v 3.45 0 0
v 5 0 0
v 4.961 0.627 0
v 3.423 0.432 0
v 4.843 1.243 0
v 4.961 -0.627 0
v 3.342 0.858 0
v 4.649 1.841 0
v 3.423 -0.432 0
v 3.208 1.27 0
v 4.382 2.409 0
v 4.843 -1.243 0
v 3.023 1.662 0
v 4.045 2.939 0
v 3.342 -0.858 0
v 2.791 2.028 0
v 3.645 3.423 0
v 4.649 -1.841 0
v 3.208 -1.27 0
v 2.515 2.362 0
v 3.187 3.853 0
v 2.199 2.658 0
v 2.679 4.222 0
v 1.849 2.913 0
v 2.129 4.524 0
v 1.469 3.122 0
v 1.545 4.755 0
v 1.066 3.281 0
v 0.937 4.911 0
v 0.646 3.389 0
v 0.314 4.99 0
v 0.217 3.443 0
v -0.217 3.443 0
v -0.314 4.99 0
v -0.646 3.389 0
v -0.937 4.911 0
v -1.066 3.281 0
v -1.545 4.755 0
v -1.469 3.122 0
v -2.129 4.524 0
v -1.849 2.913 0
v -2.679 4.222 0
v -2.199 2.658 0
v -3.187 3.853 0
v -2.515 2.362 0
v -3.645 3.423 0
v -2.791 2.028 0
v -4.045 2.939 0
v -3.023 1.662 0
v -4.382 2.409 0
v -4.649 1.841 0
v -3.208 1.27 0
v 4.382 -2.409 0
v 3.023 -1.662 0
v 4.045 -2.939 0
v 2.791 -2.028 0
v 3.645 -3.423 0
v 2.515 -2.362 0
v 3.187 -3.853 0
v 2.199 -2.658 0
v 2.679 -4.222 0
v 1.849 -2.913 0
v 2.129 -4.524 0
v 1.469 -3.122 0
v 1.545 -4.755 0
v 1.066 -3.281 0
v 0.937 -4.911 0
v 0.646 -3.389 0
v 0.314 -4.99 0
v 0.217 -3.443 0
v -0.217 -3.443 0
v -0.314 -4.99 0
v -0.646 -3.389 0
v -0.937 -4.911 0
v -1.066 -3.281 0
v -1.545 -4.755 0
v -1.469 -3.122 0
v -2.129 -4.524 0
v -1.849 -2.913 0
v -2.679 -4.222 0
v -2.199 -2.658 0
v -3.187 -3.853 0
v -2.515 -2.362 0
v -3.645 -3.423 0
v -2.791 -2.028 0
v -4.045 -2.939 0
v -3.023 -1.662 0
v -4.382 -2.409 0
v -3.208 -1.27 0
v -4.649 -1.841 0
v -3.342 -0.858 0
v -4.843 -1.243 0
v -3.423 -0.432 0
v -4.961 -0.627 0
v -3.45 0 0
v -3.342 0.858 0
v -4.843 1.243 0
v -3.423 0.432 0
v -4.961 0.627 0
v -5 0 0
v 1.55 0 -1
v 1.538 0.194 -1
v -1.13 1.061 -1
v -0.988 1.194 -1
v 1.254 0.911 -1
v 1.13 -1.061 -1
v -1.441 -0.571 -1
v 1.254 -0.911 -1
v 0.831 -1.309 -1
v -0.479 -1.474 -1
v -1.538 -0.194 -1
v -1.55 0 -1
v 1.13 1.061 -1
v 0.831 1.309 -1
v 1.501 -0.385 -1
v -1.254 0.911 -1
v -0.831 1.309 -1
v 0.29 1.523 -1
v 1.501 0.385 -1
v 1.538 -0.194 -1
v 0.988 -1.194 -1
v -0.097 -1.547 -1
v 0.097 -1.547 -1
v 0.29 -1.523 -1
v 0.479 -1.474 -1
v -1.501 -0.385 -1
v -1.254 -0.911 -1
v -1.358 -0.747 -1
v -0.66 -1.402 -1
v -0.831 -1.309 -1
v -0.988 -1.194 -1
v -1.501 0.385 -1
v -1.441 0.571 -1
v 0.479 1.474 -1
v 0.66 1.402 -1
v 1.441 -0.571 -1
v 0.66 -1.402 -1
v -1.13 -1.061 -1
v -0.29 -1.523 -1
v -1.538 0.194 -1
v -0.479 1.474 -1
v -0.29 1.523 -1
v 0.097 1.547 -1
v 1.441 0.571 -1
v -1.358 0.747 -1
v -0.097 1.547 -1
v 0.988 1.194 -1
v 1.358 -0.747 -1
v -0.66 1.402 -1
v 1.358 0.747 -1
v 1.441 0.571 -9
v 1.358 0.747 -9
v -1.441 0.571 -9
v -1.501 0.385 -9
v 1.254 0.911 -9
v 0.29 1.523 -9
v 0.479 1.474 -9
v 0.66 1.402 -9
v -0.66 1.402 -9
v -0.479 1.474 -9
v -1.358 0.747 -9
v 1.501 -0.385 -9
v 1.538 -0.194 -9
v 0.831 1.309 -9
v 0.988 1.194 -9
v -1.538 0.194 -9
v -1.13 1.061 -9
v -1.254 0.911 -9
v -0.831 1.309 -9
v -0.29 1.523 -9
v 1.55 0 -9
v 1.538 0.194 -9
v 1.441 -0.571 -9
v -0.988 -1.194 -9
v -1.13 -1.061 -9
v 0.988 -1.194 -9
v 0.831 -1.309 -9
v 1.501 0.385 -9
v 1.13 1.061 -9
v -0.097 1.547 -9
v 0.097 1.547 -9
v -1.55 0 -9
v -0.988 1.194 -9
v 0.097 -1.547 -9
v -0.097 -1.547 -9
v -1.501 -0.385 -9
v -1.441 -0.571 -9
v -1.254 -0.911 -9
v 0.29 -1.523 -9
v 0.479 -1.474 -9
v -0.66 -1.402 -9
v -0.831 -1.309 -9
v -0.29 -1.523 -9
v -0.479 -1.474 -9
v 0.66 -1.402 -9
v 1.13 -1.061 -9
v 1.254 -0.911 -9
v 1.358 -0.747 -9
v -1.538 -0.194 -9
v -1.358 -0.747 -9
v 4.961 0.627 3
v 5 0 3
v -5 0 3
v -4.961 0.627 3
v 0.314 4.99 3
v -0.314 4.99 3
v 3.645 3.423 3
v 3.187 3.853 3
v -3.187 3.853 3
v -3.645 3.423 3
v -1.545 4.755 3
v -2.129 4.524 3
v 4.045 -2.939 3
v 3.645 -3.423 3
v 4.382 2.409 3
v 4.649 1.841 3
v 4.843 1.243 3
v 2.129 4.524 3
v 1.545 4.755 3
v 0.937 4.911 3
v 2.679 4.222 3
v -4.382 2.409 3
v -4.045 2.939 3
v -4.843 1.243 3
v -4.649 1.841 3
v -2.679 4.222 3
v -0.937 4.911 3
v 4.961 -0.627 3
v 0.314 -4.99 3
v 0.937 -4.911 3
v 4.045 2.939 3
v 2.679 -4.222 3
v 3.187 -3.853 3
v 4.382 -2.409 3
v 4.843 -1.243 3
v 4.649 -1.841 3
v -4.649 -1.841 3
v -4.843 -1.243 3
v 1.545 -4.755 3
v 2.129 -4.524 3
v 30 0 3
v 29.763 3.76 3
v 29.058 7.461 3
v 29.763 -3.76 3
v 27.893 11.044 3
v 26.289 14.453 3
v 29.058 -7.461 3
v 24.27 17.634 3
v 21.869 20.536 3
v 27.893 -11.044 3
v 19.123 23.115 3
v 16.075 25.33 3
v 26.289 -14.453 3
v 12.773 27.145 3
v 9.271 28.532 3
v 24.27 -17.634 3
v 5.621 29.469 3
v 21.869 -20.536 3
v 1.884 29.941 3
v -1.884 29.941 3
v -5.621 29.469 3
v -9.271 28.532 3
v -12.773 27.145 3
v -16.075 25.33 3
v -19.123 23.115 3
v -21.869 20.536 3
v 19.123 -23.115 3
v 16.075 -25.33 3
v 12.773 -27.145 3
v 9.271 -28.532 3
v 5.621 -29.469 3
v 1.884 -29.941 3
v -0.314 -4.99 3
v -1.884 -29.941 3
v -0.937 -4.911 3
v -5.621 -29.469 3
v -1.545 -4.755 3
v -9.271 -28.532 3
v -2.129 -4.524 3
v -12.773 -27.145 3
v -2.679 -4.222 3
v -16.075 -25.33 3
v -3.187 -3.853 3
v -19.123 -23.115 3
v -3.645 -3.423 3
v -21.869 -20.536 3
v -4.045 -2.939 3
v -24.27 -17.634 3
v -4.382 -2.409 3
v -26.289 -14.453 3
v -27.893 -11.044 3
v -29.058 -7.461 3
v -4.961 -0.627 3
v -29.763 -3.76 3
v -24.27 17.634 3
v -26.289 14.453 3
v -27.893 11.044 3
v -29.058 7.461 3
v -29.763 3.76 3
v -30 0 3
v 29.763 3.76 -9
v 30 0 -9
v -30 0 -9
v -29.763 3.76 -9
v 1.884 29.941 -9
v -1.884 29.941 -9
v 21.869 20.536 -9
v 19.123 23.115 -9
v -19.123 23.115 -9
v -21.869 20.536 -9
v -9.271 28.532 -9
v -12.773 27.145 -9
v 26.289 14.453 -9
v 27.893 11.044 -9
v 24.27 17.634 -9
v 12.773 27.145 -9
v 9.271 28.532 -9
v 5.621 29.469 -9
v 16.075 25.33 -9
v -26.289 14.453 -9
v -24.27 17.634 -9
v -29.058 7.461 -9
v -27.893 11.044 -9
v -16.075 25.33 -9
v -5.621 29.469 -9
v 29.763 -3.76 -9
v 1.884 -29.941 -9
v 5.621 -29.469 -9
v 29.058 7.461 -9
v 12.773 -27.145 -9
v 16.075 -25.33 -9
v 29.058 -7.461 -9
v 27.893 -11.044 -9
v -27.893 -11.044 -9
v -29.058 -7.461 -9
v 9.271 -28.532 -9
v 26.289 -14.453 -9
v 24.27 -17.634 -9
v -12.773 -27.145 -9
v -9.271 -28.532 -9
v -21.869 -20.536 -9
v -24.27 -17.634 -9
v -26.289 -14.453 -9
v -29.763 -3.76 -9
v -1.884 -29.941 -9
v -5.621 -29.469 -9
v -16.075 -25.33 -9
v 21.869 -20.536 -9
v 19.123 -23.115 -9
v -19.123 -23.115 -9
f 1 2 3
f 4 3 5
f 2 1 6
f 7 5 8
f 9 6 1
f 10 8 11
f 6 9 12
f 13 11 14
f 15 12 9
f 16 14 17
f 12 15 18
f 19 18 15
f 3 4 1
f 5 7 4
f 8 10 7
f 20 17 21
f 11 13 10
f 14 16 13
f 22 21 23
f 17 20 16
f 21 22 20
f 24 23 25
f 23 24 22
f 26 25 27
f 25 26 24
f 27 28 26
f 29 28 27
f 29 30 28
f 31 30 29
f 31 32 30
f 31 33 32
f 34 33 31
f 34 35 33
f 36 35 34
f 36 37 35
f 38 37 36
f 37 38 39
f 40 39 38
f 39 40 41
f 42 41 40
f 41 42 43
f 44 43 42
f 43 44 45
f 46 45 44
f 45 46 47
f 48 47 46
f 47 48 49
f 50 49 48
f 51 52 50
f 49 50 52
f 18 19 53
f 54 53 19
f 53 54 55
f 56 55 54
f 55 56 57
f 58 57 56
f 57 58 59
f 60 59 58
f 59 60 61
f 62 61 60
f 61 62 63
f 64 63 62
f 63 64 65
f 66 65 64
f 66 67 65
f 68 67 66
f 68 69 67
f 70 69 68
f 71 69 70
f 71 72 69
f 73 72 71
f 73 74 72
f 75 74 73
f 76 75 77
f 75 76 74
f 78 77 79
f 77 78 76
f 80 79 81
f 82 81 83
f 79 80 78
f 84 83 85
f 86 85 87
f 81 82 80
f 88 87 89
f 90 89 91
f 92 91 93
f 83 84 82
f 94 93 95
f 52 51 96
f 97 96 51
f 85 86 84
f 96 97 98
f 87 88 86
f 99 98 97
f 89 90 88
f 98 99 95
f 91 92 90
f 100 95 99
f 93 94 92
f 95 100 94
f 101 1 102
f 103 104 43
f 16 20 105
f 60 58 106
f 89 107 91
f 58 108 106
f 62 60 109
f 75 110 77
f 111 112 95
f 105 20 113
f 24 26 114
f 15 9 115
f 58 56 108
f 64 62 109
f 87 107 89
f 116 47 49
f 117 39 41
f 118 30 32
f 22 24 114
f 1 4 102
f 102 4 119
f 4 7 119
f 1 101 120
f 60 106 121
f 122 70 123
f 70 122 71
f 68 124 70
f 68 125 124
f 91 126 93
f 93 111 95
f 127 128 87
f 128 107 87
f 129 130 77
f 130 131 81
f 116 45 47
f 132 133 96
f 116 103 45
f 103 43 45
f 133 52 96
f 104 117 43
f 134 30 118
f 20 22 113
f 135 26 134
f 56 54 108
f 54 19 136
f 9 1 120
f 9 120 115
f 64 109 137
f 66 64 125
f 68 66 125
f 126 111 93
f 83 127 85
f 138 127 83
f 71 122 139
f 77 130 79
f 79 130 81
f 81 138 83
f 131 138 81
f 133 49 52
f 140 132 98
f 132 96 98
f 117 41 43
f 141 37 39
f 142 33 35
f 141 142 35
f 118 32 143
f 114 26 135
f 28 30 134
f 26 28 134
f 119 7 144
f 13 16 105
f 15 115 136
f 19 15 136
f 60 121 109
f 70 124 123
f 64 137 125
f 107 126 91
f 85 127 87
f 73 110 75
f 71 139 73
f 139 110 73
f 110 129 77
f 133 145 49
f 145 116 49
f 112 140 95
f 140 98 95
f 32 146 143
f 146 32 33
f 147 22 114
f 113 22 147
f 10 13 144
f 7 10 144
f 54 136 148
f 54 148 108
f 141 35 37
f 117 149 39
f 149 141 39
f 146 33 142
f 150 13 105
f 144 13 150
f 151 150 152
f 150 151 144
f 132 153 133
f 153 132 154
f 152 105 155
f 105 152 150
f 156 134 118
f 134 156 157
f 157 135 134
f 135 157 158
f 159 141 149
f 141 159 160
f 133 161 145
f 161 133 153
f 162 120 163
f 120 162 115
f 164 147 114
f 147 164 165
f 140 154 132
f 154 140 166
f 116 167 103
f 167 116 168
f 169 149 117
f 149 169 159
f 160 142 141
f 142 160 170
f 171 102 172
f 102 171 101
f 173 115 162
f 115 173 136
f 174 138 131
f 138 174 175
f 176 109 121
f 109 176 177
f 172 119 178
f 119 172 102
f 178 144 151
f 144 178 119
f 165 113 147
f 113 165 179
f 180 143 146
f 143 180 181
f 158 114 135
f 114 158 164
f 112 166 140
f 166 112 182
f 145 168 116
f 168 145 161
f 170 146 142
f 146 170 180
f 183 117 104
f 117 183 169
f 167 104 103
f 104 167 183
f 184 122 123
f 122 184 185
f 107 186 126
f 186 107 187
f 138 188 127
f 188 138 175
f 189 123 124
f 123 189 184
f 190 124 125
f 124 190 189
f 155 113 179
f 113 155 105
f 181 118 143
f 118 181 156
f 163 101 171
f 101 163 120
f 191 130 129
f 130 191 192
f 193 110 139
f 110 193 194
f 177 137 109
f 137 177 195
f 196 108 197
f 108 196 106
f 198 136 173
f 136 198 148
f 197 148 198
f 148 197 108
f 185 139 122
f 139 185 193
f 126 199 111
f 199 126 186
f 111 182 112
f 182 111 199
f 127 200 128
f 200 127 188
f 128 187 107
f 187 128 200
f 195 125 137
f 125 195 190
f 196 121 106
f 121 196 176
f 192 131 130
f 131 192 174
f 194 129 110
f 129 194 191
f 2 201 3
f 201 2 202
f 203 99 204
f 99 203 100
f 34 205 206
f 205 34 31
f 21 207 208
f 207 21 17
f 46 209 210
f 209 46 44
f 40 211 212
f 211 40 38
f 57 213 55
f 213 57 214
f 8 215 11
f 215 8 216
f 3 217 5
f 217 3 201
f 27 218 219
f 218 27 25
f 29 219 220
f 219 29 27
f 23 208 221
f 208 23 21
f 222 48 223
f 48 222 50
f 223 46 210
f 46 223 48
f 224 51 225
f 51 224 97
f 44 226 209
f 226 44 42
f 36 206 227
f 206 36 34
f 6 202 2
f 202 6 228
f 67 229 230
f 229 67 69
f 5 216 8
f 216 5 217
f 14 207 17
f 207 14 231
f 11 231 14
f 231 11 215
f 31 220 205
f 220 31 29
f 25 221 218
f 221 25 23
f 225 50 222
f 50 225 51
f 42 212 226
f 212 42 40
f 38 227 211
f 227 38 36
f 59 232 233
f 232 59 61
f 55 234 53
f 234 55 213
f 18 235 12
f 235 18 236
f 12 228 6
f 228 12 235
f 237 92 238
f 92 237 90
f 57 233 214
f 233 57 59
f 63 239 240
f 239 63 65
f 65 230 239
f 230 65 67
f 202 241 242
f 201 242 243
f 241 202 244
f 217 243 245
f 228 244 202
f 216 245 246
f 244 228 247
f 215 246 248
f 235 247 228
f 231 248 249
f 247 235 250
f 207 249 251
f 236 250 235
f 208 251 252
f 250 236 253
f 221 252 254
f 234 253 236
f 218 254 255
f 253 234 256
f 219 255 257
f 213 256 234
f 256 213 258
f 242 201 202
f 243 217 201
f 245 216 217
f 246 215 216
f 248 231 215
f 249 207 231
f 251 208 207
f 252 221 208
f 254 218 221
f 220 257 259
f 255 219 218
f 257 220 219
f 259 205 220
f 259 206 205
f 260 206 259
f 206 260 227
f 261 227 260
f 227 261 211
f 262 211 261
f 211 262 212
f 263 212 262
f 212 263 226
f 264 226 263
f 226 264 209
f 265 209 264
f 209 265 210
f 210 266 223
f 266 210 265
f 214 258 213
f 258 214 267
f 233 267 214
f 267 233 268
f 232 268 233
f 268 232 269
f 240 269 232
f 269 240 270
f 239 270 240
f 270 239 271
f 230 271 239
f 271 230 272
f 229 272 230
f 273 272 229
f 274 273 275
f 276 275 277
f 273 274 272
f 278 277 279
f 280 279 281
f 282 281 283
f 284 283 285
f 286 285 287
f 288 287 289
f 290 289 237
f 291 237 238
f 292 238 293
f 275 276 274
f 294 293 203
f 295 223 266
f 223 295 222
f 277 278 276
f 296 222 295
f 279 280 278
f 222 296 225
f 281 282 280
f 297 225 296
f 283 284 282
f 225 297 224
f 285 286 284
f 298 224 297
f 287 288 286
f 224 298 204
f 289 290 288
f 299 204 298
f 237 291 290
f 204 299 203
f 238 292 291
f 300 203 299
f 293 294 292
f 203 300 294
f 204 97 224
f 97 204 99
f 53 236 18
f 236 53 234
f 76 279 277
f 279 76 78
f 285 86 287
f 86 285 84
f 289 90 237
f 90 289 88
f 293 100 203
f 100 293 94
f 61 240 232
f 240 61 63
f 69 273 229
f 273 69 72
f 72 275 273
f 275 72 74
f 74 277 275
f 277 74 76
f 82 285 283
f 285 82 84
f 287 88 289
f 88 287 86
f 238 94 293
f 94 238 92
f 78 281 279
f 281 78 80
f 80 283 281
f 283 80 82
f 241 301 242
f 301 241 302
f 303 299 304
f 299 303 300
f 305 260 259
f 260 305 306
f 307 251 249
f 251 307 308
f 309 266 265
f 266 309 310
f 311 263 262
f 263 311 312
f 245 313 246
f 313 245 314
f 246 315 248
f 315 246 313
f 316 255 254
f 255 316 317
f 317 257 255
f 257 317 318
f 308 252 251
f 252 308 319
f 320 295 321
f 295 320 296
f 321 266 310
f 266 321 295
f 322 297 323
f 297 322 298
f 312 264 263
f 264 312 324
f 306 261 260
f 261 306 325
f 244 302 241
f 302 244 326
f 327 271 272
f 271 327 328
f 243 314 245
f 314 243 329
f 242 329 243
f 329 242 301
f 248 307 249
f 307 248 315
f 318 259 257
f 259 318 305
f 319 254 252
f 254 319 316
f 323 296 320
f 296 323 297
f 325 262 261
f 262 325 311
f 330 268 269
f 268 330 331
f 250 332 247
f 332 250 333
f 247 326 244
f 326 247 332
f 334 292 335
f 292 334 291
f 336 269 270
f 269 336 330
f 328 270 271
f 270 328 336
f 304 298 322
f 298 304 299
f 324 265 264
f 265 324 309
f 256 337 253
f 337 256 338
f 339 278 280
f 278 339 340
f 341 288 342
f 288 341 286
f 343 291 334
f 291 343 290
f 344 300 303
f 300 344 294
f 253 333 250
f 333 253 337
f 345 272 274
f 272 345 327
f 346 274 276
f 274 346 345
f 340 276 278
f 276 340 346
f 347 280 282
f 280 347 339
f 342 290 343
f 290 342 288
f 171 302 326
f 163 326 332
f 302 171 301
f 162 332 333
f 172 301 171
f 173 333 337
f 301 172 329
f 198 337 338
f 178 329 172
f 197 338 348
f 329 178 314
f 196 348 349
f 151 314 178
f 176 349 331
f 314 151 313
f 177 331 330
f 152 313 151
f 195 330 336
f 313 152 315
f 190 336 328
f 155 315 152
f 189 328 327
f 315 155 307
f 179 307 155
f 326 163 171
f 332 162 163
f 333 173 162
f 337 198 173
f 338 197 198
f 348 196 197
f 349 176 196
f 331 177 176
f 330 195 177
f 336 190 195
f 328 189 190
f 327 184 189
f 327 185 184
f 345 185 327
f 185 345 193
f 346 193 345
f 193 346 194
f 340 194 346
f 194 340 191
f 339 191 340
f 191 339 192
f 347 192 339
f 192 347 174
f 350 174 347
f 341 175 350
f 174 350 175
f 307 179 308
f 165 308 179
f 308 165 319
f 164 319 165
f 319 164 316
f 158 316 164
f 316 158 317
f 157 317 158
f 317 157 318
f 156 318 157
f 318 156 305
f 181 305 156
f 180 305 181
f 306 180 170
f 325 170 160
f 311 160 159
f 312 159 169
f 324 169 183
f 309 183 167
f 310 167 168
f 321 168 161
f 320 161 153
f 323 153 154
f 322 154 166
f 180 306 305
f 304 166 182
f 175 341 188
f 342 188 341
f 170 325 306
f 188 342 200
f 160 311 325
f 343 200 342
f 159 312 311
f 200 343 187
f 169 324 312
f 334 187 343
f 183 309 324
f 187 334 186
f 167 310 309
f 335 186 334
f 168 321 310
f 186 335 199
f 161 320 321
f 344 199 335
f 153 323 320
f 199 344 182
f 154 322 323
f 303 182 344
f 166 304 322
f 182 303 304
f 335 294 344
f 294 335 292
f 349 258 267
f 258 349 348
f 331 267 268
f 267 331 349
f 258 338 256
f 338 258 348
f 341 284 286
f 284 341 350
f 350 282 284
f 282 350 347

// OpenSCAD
$fn = 50;

difference() {
	union() {
		translate(v = [0, 0, -9.0]) {
			cylinder(h = 12, r = 30.0);
		}
	}
	union() {
		translate(v = [0, 0, 0]) {
			rotate(a = [0, 0, 0]) {
				difference() {
					union() {
						translate(v = [0, 0, -12.0]) {
							cylinder(h = 12, r = 1.25);
						}
						translate(v = [0, 0, -1.0]) {
							cylinder(h = 1.0, r1 = 1.55, r2 = 3.45);
						}
						translate(v = [0, 0, -12.0]) {
							cylinder(h = 12, r = 1.55);
						}
						translate(v = [0, 0, -12.0]) {
							cylinder(h = 12, r = 1.25);
						}
					}
					union();
				}
			}
		}
		#cylinder(h = 3, r = 5.0);
	}
}
